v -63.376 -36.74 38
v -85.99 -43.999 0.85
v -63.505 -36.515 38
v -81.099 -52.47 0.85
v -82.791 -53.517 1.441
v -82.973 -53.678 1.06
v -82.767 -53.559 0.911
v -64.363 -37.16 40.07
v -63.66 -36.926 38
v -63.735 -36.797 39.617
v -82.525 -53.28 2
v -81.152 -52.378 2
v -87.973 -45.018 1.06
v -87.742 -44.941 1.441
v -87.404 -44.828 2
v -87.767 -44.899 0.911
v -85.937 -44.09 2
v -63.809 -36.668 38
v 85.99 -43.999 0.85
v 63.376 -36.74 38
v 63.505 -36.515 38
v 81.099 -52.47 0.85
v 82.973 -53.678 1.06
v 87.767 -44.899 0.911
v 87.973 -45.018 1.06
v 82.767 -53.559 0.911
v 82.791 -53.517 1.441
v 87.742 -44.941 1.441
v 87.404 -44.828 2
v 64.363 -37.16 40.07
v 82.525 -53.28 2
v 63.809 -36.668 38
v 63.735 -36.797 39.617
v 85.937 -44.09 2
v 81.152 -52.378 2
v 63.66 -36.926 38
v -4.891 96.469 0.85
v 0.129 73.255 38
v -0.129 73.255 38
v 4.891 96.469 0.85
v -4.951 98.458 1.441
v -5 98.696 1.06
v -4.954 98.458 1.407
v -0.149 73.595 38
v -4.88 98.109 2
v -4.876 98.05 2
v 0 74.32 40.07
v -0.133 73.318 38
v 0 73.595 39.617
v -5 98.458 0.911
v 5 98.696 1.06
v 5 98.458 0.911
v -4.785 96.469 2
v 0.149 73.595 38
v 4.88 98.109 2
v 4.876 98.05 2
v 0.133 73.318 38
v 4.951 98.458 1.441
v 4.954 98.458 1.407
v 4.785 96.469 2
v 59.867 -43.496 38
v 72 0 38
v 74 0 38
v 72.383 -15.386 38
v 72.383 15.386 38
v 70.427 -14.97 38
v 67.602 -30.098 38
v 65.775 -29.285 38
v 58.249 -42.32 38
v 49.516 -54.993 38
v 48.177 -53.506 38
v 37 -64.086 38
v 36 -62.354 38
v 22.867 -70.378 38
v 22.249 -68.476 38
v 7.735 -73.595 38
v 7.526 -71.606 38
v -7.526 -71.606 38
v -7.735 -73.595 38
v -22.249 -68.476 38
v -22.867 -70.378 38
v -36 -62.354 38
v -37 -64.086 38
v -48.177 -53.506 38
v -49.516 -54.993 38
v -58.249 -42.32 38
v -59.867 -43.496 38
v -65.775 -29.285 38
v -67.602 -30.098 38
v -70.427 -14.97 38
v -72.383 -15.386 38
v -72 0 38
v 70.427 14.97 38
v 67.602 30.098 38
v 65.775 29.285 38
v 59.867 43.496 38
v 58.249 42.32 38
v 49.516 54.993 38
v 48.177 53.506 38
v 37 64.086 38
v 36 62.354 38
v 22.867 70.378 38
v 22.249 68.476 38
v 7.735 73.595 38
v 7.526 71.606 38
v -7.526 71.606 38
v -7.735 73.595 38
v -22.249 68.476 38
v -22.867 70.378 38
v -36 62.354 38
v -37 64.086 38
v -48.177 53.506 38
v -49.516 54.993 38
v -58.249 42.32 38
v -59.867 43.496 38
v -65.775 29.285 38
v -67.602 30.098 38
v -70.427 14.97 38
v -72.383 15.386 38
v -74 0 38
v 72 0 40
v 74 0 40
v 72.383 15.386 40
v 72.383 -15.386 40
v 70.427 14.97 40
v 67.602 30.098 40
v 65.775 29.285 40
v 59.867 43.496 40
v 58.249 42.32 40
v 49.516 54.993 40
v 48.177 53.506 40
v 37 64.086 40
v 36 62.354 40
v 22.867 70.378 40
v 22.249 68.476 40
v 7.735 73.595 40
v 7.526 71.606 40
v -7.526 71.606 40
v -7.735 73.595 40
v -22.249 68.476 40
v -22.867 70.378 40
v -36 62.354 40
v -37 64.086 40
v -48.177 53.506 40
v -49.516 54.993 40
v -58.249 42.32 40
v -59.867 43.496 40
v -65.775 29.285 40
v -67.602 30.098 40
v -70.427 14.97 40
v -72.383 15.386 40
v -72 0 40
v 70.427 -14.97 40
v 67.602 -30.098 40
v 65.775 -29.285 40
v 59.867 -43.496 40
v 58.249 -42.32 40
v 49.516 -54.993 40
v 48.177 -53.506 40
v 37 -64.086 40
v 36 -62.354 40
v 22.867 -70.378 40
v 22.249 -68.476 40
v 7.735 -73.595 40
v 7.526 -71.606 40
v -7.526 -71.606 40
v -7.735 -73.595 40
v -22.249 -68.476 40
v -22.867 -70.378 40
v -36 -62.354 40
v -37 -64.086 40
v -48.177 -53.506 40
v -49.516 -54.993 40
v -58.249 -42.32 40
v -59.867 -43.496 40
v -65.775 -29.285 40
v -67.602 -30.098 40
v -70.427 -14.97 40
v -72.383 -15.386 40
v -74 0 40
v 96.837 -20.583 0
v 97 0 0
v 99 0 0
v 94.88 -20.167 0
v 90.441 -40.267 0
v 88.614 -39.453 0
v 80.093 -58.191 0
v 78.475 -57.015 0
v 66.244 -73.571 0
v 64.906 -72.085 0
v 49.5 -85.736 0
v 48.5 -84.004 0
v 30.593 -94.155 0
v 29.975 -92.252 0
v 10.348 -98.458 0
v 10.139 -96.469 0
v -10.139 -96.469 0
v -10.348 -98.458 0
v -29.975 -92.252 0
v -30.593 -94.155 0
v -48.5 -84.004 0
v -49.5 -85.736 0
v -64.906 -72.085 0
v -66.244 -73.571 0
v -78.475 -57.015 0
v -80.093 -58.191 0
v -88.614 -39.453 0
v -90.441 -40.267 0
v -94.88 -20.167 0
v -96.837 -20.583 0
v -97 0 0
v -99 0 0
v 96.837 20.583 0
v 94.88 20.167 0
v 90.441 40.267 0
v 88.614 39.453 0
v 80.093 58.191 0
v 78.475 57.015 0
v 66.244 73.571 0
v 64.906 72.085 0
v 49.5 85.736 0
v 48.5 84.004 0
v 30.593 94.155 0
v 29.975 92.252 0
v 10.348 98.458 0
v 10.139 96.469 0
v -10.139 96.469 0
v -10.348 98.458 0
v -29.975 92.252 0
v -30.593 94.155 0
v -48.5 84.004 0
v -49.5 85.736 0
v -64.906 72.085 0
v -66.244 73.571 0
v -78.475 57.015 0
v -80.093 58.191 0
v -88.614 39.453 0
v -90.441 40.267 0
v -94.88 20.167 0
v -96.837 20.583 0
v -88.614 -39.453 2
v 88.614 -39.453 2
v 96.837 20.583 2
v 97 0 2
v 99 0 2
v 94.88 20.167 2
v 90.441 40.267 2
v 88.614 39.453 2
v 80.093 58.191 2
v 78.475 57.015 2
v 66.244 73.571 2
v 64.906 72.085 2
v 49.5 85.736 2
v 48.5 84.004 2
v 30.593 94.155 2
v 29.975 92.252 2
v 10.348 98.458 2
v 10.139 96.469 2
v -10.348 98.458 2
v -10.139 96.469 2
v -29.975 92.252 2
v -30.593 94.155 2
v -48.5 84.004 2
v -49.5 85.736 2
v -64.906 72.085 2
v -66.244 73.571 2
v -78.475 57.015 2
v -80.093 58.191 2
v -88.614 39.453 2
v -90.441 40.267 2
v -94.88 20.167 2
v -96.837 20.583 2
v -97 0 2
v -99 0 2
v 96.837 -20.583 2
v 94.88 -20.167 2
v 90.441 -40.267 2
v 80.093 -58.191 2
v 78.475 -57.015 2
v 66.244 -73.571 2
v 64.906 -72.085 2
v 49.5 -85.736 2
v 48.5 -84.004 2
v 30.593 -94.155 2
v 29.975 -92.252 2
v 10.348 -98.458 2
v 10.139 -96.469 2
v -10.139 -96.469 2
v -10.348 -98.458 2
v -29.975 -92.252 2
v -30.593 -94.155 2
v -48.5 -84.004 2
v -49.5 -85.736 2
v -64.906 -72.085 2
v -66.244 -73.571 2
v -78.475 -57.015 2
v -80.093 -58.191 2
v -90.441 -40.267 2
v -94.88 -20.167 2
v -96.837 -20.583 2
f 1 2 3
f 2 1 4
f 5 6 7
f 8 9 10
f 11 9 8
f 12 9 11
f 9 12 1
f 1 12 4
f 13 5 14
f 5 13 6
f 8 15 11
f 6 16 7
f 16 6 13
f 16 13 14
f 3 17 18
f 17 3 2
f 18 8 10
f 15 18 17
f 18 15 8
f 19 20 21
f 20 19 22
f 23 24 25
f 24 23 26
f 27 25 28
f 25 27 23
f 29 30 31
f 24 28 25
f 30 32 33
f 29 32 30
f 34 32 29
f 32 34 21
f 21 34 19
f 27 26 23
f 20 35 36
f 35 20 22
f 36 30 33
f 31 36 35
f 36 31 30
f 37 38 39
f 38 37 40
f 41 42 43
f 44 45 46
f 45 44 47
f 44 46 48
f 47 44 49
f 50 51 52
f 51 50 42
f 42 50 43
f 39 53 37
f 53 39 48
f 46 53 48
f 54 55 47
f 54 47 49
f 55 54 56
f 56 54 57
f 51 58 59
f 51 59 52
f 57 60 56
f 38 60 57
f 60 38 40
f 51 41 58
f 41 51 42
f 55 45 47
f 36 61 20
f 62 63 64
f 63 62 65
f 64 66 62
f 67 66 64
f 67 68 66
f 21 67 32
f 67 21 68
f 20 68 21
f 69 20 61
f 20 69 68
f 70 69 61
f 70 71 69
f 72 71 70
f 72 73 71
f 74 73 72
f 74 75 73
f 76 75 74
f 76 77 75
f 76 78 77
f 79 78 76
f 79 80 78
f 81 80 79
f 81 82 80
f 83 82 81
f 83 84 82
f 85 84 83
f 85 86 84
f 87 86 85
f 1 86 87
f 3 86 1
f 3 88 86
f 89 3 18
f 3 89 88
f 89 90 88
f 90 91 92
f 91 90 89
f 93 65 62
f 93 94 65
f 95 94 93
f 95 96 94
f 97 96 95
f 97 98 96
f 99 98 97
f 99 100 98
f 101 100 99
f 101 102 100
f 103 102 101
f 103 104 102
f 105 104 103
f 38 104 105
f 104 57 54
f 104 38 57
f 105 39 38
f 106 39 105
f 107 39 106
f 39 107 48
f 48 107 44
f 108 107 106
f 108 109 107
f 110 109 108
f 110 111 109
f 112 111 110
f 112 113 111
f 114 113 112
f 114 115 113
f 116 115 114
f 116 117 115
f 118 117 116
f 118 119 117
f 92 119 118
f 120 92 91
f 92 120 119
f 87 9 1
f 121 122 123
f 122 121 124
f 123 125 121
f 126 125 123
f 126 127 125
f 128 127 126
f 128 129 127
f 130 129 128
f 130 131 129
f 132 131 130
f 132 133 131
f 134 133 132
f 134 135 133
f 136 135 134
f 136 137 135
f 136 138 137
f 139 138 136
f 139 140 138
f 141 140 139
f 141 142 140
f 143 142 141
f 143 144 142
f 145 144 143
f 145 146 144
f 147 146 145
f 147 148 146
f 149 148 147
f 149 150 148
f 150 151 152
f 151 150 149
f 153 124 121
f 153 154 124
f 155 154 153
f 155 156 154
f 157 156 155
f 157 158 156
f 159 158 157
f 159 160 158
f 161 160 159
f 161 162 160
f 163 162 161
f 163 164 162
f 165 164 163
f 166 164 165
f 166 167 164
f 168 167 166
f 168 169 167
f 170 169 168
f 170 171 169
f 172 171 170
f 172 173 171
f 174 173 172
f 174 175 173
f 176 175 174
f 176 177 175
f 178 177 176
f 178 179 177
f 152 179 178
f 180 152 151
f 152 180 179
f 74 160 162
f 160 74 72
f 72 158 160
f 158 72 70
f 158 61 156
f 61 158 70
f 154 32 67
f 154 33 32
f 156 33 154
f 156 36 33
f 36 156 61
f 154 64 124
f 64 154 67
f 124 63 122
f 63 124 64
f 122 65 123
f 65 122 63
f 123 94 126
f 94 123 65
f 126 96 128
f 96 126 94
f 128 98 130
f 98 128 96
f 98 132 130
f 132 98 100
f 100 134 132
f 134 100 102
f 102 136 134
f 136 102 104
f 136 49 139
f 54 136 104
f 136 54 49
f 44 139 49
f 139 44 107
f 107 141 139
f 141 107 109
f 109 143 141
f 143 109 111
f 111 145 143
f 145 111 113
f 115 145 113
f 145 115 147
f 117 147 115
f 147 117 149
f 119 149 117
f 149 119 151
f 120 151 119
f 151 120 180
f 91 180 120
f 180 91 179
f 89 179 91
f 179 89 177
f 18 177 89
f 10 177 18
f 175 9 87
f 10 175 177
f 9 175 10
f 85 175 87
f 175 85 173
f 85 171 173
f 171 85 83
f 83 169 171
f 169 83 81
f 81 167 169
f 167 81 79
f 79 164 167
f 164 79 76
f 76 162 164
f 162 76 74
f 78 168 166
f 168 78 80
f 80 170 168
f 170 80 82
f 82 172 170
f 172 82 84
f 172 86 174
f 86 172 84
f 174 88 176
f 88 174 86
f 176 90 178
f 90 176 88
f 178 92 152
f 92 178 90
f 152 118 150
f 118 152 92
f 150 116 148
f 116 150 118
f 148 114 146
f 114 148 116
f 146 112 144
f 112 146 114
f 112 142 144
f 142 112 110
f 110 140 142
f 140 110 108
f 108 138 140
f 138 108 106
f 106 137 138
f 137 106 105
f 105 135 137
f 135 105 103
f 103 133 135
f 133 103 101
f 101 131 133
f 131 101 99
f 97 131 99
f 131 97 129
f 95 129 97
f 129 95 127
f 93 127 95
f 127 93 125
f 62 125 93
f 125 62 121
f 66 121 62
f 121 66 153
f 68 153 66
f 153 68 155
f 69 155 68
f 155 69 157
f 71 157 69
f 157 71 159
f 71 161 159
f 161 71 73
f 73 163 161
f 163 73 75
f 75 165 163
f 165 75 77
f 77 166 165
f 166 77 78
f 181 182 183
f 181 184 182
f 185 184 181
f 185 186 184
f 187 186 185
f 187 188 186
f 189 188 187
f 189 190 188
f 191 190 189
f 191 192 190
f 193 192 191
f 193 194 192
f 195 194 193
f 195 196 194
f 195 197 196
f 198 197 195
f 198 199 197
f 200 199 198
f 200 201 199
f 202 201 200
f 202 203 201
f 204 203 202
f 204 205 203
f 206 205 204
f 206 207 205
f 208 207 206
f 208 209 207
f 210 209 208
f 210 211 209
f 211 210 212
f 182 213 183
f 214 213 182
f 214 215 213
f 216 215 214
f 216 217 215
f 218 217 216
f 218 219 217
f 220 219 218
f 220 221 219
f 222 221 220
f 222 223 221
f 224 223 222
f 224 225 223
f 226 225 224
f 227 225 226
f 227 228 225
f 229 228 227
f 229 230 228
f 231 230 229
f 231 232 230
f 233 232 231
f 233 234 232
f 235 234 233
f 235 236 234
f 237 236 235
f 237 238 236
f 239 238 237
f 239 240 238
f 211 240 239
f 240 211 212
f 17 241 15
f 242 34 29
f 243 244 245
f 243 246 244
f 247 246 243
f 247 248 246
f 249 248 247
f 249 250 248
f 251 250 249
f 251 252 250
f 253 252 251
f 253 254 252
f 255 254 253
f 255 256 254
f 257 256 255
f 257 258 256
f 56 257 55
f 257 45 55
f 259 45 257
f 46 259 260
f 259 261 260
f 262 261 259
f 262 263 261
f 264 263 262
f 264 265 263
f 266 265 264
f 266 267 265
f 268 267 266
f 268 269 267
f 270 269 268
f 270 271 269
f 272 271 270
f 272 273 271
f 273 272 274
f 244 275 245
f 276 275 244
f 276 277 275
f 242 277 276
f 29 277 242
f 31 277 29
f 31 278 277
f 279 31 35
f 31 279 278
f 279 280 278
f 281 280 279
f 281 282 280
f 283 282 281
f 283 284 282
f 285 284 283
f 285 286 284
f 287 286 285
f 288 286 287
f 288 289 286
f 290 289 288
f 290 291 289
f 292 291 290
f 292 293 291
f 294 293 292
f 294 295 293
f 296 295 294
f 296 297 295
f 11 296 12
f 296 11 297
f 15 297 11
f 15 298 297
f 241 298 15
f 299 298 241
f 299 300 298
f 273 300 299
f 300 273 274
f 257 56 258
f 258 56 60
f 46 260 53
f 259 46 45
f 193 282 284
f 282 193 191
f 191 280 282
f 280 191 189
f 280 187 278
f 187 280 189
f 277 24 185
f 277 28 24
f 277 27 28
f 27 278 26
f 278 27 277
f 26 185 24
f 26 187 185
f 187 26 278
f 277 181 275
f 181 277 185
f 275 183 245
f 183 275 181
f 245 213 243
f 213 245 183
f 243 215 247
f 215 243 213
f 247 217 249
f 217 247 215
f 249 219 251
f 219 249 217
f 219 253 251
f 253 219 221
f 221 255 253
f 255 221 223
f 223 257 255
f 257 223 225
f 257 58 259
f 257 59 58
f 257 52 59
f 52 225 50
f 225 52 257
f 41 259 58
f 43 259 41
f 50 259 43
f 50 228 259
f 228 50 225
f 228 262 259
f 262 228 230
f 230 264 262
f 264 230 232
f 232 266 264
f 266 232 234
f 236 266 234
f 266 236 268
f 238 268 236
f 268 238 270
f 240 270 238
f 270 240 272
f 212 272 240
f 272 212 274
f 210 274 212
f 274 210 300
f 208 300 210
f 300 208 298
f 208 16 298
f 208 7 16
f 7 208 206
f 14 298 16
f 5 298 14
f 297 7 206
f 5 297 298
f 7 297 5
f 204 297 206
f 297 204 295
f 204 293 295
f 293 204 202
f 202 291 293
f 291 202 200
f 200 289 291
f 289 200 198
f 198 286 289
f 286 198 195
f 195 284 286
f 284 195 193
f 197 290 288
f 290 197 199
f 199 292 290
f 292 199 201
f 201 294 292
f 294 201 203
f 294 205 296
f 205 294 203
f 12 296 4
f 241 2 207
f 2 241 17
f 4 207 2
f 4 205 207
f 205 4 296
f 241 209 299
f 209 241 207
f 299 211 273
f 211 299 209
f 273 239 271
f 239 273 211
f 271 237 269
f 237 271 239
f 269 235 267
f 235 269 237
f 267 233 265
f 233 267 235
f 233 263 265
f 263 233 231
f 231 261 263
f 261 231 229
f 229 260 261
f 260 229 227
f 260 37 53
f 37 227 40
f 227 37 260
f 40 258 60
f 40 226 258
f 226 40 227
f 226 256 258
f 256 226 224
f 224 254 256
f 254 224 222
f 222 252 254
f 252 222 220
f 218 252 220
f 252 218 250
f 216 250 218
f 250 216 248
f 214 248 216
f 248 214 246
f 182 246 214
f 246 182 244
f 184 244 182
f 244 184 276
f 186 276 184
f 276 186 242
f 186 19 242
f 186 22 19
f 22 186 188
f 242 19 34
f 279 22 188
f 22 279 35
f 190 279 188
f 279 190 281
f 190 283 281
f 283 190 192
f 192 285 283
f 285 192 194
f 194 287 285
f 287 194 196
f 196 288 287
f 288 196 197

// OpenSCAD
// Units are in milimeters

THICKNESS = 2;
RADIUS = 30;
OUTSIDE_WIDTH=93;
MARGIN = 2;
TRIANGLE_BASE = 5;

HEIGHT = 36 + MARGIN;
INNER_DIAMETER = 70 + MARGIN;
OUTER_DIAMETER = 95 + MARGIN;


module Ring( diameter ) {
    linear_extrude( THICKNESS ) {
        difference() {
            circle( diameter + THICKNESS );
            circle( diameter );
        }
    }
};

translate( [ 0, 0, HEIGHT ] ) 
Ring( INNER_DIAMETER );

Ring( OUTER_DIAMETER );

// Triangle
for( i = [ 0:3 ] ) {
    rotate( [ 0, 0, 30 + ( 120 * i ) ] )
    translate( [ -OUTER_DIAMETER, 0, 0 ] )
    rotate( [ 0, -58, 0 ] )
    linear_extrude( THICKNESS )
    polygon( points=[ [ 0, TRIANGLE_BASE ], [ 0, -TRIANGLE_BASE ], [ 46, 0 ] ] );
}
